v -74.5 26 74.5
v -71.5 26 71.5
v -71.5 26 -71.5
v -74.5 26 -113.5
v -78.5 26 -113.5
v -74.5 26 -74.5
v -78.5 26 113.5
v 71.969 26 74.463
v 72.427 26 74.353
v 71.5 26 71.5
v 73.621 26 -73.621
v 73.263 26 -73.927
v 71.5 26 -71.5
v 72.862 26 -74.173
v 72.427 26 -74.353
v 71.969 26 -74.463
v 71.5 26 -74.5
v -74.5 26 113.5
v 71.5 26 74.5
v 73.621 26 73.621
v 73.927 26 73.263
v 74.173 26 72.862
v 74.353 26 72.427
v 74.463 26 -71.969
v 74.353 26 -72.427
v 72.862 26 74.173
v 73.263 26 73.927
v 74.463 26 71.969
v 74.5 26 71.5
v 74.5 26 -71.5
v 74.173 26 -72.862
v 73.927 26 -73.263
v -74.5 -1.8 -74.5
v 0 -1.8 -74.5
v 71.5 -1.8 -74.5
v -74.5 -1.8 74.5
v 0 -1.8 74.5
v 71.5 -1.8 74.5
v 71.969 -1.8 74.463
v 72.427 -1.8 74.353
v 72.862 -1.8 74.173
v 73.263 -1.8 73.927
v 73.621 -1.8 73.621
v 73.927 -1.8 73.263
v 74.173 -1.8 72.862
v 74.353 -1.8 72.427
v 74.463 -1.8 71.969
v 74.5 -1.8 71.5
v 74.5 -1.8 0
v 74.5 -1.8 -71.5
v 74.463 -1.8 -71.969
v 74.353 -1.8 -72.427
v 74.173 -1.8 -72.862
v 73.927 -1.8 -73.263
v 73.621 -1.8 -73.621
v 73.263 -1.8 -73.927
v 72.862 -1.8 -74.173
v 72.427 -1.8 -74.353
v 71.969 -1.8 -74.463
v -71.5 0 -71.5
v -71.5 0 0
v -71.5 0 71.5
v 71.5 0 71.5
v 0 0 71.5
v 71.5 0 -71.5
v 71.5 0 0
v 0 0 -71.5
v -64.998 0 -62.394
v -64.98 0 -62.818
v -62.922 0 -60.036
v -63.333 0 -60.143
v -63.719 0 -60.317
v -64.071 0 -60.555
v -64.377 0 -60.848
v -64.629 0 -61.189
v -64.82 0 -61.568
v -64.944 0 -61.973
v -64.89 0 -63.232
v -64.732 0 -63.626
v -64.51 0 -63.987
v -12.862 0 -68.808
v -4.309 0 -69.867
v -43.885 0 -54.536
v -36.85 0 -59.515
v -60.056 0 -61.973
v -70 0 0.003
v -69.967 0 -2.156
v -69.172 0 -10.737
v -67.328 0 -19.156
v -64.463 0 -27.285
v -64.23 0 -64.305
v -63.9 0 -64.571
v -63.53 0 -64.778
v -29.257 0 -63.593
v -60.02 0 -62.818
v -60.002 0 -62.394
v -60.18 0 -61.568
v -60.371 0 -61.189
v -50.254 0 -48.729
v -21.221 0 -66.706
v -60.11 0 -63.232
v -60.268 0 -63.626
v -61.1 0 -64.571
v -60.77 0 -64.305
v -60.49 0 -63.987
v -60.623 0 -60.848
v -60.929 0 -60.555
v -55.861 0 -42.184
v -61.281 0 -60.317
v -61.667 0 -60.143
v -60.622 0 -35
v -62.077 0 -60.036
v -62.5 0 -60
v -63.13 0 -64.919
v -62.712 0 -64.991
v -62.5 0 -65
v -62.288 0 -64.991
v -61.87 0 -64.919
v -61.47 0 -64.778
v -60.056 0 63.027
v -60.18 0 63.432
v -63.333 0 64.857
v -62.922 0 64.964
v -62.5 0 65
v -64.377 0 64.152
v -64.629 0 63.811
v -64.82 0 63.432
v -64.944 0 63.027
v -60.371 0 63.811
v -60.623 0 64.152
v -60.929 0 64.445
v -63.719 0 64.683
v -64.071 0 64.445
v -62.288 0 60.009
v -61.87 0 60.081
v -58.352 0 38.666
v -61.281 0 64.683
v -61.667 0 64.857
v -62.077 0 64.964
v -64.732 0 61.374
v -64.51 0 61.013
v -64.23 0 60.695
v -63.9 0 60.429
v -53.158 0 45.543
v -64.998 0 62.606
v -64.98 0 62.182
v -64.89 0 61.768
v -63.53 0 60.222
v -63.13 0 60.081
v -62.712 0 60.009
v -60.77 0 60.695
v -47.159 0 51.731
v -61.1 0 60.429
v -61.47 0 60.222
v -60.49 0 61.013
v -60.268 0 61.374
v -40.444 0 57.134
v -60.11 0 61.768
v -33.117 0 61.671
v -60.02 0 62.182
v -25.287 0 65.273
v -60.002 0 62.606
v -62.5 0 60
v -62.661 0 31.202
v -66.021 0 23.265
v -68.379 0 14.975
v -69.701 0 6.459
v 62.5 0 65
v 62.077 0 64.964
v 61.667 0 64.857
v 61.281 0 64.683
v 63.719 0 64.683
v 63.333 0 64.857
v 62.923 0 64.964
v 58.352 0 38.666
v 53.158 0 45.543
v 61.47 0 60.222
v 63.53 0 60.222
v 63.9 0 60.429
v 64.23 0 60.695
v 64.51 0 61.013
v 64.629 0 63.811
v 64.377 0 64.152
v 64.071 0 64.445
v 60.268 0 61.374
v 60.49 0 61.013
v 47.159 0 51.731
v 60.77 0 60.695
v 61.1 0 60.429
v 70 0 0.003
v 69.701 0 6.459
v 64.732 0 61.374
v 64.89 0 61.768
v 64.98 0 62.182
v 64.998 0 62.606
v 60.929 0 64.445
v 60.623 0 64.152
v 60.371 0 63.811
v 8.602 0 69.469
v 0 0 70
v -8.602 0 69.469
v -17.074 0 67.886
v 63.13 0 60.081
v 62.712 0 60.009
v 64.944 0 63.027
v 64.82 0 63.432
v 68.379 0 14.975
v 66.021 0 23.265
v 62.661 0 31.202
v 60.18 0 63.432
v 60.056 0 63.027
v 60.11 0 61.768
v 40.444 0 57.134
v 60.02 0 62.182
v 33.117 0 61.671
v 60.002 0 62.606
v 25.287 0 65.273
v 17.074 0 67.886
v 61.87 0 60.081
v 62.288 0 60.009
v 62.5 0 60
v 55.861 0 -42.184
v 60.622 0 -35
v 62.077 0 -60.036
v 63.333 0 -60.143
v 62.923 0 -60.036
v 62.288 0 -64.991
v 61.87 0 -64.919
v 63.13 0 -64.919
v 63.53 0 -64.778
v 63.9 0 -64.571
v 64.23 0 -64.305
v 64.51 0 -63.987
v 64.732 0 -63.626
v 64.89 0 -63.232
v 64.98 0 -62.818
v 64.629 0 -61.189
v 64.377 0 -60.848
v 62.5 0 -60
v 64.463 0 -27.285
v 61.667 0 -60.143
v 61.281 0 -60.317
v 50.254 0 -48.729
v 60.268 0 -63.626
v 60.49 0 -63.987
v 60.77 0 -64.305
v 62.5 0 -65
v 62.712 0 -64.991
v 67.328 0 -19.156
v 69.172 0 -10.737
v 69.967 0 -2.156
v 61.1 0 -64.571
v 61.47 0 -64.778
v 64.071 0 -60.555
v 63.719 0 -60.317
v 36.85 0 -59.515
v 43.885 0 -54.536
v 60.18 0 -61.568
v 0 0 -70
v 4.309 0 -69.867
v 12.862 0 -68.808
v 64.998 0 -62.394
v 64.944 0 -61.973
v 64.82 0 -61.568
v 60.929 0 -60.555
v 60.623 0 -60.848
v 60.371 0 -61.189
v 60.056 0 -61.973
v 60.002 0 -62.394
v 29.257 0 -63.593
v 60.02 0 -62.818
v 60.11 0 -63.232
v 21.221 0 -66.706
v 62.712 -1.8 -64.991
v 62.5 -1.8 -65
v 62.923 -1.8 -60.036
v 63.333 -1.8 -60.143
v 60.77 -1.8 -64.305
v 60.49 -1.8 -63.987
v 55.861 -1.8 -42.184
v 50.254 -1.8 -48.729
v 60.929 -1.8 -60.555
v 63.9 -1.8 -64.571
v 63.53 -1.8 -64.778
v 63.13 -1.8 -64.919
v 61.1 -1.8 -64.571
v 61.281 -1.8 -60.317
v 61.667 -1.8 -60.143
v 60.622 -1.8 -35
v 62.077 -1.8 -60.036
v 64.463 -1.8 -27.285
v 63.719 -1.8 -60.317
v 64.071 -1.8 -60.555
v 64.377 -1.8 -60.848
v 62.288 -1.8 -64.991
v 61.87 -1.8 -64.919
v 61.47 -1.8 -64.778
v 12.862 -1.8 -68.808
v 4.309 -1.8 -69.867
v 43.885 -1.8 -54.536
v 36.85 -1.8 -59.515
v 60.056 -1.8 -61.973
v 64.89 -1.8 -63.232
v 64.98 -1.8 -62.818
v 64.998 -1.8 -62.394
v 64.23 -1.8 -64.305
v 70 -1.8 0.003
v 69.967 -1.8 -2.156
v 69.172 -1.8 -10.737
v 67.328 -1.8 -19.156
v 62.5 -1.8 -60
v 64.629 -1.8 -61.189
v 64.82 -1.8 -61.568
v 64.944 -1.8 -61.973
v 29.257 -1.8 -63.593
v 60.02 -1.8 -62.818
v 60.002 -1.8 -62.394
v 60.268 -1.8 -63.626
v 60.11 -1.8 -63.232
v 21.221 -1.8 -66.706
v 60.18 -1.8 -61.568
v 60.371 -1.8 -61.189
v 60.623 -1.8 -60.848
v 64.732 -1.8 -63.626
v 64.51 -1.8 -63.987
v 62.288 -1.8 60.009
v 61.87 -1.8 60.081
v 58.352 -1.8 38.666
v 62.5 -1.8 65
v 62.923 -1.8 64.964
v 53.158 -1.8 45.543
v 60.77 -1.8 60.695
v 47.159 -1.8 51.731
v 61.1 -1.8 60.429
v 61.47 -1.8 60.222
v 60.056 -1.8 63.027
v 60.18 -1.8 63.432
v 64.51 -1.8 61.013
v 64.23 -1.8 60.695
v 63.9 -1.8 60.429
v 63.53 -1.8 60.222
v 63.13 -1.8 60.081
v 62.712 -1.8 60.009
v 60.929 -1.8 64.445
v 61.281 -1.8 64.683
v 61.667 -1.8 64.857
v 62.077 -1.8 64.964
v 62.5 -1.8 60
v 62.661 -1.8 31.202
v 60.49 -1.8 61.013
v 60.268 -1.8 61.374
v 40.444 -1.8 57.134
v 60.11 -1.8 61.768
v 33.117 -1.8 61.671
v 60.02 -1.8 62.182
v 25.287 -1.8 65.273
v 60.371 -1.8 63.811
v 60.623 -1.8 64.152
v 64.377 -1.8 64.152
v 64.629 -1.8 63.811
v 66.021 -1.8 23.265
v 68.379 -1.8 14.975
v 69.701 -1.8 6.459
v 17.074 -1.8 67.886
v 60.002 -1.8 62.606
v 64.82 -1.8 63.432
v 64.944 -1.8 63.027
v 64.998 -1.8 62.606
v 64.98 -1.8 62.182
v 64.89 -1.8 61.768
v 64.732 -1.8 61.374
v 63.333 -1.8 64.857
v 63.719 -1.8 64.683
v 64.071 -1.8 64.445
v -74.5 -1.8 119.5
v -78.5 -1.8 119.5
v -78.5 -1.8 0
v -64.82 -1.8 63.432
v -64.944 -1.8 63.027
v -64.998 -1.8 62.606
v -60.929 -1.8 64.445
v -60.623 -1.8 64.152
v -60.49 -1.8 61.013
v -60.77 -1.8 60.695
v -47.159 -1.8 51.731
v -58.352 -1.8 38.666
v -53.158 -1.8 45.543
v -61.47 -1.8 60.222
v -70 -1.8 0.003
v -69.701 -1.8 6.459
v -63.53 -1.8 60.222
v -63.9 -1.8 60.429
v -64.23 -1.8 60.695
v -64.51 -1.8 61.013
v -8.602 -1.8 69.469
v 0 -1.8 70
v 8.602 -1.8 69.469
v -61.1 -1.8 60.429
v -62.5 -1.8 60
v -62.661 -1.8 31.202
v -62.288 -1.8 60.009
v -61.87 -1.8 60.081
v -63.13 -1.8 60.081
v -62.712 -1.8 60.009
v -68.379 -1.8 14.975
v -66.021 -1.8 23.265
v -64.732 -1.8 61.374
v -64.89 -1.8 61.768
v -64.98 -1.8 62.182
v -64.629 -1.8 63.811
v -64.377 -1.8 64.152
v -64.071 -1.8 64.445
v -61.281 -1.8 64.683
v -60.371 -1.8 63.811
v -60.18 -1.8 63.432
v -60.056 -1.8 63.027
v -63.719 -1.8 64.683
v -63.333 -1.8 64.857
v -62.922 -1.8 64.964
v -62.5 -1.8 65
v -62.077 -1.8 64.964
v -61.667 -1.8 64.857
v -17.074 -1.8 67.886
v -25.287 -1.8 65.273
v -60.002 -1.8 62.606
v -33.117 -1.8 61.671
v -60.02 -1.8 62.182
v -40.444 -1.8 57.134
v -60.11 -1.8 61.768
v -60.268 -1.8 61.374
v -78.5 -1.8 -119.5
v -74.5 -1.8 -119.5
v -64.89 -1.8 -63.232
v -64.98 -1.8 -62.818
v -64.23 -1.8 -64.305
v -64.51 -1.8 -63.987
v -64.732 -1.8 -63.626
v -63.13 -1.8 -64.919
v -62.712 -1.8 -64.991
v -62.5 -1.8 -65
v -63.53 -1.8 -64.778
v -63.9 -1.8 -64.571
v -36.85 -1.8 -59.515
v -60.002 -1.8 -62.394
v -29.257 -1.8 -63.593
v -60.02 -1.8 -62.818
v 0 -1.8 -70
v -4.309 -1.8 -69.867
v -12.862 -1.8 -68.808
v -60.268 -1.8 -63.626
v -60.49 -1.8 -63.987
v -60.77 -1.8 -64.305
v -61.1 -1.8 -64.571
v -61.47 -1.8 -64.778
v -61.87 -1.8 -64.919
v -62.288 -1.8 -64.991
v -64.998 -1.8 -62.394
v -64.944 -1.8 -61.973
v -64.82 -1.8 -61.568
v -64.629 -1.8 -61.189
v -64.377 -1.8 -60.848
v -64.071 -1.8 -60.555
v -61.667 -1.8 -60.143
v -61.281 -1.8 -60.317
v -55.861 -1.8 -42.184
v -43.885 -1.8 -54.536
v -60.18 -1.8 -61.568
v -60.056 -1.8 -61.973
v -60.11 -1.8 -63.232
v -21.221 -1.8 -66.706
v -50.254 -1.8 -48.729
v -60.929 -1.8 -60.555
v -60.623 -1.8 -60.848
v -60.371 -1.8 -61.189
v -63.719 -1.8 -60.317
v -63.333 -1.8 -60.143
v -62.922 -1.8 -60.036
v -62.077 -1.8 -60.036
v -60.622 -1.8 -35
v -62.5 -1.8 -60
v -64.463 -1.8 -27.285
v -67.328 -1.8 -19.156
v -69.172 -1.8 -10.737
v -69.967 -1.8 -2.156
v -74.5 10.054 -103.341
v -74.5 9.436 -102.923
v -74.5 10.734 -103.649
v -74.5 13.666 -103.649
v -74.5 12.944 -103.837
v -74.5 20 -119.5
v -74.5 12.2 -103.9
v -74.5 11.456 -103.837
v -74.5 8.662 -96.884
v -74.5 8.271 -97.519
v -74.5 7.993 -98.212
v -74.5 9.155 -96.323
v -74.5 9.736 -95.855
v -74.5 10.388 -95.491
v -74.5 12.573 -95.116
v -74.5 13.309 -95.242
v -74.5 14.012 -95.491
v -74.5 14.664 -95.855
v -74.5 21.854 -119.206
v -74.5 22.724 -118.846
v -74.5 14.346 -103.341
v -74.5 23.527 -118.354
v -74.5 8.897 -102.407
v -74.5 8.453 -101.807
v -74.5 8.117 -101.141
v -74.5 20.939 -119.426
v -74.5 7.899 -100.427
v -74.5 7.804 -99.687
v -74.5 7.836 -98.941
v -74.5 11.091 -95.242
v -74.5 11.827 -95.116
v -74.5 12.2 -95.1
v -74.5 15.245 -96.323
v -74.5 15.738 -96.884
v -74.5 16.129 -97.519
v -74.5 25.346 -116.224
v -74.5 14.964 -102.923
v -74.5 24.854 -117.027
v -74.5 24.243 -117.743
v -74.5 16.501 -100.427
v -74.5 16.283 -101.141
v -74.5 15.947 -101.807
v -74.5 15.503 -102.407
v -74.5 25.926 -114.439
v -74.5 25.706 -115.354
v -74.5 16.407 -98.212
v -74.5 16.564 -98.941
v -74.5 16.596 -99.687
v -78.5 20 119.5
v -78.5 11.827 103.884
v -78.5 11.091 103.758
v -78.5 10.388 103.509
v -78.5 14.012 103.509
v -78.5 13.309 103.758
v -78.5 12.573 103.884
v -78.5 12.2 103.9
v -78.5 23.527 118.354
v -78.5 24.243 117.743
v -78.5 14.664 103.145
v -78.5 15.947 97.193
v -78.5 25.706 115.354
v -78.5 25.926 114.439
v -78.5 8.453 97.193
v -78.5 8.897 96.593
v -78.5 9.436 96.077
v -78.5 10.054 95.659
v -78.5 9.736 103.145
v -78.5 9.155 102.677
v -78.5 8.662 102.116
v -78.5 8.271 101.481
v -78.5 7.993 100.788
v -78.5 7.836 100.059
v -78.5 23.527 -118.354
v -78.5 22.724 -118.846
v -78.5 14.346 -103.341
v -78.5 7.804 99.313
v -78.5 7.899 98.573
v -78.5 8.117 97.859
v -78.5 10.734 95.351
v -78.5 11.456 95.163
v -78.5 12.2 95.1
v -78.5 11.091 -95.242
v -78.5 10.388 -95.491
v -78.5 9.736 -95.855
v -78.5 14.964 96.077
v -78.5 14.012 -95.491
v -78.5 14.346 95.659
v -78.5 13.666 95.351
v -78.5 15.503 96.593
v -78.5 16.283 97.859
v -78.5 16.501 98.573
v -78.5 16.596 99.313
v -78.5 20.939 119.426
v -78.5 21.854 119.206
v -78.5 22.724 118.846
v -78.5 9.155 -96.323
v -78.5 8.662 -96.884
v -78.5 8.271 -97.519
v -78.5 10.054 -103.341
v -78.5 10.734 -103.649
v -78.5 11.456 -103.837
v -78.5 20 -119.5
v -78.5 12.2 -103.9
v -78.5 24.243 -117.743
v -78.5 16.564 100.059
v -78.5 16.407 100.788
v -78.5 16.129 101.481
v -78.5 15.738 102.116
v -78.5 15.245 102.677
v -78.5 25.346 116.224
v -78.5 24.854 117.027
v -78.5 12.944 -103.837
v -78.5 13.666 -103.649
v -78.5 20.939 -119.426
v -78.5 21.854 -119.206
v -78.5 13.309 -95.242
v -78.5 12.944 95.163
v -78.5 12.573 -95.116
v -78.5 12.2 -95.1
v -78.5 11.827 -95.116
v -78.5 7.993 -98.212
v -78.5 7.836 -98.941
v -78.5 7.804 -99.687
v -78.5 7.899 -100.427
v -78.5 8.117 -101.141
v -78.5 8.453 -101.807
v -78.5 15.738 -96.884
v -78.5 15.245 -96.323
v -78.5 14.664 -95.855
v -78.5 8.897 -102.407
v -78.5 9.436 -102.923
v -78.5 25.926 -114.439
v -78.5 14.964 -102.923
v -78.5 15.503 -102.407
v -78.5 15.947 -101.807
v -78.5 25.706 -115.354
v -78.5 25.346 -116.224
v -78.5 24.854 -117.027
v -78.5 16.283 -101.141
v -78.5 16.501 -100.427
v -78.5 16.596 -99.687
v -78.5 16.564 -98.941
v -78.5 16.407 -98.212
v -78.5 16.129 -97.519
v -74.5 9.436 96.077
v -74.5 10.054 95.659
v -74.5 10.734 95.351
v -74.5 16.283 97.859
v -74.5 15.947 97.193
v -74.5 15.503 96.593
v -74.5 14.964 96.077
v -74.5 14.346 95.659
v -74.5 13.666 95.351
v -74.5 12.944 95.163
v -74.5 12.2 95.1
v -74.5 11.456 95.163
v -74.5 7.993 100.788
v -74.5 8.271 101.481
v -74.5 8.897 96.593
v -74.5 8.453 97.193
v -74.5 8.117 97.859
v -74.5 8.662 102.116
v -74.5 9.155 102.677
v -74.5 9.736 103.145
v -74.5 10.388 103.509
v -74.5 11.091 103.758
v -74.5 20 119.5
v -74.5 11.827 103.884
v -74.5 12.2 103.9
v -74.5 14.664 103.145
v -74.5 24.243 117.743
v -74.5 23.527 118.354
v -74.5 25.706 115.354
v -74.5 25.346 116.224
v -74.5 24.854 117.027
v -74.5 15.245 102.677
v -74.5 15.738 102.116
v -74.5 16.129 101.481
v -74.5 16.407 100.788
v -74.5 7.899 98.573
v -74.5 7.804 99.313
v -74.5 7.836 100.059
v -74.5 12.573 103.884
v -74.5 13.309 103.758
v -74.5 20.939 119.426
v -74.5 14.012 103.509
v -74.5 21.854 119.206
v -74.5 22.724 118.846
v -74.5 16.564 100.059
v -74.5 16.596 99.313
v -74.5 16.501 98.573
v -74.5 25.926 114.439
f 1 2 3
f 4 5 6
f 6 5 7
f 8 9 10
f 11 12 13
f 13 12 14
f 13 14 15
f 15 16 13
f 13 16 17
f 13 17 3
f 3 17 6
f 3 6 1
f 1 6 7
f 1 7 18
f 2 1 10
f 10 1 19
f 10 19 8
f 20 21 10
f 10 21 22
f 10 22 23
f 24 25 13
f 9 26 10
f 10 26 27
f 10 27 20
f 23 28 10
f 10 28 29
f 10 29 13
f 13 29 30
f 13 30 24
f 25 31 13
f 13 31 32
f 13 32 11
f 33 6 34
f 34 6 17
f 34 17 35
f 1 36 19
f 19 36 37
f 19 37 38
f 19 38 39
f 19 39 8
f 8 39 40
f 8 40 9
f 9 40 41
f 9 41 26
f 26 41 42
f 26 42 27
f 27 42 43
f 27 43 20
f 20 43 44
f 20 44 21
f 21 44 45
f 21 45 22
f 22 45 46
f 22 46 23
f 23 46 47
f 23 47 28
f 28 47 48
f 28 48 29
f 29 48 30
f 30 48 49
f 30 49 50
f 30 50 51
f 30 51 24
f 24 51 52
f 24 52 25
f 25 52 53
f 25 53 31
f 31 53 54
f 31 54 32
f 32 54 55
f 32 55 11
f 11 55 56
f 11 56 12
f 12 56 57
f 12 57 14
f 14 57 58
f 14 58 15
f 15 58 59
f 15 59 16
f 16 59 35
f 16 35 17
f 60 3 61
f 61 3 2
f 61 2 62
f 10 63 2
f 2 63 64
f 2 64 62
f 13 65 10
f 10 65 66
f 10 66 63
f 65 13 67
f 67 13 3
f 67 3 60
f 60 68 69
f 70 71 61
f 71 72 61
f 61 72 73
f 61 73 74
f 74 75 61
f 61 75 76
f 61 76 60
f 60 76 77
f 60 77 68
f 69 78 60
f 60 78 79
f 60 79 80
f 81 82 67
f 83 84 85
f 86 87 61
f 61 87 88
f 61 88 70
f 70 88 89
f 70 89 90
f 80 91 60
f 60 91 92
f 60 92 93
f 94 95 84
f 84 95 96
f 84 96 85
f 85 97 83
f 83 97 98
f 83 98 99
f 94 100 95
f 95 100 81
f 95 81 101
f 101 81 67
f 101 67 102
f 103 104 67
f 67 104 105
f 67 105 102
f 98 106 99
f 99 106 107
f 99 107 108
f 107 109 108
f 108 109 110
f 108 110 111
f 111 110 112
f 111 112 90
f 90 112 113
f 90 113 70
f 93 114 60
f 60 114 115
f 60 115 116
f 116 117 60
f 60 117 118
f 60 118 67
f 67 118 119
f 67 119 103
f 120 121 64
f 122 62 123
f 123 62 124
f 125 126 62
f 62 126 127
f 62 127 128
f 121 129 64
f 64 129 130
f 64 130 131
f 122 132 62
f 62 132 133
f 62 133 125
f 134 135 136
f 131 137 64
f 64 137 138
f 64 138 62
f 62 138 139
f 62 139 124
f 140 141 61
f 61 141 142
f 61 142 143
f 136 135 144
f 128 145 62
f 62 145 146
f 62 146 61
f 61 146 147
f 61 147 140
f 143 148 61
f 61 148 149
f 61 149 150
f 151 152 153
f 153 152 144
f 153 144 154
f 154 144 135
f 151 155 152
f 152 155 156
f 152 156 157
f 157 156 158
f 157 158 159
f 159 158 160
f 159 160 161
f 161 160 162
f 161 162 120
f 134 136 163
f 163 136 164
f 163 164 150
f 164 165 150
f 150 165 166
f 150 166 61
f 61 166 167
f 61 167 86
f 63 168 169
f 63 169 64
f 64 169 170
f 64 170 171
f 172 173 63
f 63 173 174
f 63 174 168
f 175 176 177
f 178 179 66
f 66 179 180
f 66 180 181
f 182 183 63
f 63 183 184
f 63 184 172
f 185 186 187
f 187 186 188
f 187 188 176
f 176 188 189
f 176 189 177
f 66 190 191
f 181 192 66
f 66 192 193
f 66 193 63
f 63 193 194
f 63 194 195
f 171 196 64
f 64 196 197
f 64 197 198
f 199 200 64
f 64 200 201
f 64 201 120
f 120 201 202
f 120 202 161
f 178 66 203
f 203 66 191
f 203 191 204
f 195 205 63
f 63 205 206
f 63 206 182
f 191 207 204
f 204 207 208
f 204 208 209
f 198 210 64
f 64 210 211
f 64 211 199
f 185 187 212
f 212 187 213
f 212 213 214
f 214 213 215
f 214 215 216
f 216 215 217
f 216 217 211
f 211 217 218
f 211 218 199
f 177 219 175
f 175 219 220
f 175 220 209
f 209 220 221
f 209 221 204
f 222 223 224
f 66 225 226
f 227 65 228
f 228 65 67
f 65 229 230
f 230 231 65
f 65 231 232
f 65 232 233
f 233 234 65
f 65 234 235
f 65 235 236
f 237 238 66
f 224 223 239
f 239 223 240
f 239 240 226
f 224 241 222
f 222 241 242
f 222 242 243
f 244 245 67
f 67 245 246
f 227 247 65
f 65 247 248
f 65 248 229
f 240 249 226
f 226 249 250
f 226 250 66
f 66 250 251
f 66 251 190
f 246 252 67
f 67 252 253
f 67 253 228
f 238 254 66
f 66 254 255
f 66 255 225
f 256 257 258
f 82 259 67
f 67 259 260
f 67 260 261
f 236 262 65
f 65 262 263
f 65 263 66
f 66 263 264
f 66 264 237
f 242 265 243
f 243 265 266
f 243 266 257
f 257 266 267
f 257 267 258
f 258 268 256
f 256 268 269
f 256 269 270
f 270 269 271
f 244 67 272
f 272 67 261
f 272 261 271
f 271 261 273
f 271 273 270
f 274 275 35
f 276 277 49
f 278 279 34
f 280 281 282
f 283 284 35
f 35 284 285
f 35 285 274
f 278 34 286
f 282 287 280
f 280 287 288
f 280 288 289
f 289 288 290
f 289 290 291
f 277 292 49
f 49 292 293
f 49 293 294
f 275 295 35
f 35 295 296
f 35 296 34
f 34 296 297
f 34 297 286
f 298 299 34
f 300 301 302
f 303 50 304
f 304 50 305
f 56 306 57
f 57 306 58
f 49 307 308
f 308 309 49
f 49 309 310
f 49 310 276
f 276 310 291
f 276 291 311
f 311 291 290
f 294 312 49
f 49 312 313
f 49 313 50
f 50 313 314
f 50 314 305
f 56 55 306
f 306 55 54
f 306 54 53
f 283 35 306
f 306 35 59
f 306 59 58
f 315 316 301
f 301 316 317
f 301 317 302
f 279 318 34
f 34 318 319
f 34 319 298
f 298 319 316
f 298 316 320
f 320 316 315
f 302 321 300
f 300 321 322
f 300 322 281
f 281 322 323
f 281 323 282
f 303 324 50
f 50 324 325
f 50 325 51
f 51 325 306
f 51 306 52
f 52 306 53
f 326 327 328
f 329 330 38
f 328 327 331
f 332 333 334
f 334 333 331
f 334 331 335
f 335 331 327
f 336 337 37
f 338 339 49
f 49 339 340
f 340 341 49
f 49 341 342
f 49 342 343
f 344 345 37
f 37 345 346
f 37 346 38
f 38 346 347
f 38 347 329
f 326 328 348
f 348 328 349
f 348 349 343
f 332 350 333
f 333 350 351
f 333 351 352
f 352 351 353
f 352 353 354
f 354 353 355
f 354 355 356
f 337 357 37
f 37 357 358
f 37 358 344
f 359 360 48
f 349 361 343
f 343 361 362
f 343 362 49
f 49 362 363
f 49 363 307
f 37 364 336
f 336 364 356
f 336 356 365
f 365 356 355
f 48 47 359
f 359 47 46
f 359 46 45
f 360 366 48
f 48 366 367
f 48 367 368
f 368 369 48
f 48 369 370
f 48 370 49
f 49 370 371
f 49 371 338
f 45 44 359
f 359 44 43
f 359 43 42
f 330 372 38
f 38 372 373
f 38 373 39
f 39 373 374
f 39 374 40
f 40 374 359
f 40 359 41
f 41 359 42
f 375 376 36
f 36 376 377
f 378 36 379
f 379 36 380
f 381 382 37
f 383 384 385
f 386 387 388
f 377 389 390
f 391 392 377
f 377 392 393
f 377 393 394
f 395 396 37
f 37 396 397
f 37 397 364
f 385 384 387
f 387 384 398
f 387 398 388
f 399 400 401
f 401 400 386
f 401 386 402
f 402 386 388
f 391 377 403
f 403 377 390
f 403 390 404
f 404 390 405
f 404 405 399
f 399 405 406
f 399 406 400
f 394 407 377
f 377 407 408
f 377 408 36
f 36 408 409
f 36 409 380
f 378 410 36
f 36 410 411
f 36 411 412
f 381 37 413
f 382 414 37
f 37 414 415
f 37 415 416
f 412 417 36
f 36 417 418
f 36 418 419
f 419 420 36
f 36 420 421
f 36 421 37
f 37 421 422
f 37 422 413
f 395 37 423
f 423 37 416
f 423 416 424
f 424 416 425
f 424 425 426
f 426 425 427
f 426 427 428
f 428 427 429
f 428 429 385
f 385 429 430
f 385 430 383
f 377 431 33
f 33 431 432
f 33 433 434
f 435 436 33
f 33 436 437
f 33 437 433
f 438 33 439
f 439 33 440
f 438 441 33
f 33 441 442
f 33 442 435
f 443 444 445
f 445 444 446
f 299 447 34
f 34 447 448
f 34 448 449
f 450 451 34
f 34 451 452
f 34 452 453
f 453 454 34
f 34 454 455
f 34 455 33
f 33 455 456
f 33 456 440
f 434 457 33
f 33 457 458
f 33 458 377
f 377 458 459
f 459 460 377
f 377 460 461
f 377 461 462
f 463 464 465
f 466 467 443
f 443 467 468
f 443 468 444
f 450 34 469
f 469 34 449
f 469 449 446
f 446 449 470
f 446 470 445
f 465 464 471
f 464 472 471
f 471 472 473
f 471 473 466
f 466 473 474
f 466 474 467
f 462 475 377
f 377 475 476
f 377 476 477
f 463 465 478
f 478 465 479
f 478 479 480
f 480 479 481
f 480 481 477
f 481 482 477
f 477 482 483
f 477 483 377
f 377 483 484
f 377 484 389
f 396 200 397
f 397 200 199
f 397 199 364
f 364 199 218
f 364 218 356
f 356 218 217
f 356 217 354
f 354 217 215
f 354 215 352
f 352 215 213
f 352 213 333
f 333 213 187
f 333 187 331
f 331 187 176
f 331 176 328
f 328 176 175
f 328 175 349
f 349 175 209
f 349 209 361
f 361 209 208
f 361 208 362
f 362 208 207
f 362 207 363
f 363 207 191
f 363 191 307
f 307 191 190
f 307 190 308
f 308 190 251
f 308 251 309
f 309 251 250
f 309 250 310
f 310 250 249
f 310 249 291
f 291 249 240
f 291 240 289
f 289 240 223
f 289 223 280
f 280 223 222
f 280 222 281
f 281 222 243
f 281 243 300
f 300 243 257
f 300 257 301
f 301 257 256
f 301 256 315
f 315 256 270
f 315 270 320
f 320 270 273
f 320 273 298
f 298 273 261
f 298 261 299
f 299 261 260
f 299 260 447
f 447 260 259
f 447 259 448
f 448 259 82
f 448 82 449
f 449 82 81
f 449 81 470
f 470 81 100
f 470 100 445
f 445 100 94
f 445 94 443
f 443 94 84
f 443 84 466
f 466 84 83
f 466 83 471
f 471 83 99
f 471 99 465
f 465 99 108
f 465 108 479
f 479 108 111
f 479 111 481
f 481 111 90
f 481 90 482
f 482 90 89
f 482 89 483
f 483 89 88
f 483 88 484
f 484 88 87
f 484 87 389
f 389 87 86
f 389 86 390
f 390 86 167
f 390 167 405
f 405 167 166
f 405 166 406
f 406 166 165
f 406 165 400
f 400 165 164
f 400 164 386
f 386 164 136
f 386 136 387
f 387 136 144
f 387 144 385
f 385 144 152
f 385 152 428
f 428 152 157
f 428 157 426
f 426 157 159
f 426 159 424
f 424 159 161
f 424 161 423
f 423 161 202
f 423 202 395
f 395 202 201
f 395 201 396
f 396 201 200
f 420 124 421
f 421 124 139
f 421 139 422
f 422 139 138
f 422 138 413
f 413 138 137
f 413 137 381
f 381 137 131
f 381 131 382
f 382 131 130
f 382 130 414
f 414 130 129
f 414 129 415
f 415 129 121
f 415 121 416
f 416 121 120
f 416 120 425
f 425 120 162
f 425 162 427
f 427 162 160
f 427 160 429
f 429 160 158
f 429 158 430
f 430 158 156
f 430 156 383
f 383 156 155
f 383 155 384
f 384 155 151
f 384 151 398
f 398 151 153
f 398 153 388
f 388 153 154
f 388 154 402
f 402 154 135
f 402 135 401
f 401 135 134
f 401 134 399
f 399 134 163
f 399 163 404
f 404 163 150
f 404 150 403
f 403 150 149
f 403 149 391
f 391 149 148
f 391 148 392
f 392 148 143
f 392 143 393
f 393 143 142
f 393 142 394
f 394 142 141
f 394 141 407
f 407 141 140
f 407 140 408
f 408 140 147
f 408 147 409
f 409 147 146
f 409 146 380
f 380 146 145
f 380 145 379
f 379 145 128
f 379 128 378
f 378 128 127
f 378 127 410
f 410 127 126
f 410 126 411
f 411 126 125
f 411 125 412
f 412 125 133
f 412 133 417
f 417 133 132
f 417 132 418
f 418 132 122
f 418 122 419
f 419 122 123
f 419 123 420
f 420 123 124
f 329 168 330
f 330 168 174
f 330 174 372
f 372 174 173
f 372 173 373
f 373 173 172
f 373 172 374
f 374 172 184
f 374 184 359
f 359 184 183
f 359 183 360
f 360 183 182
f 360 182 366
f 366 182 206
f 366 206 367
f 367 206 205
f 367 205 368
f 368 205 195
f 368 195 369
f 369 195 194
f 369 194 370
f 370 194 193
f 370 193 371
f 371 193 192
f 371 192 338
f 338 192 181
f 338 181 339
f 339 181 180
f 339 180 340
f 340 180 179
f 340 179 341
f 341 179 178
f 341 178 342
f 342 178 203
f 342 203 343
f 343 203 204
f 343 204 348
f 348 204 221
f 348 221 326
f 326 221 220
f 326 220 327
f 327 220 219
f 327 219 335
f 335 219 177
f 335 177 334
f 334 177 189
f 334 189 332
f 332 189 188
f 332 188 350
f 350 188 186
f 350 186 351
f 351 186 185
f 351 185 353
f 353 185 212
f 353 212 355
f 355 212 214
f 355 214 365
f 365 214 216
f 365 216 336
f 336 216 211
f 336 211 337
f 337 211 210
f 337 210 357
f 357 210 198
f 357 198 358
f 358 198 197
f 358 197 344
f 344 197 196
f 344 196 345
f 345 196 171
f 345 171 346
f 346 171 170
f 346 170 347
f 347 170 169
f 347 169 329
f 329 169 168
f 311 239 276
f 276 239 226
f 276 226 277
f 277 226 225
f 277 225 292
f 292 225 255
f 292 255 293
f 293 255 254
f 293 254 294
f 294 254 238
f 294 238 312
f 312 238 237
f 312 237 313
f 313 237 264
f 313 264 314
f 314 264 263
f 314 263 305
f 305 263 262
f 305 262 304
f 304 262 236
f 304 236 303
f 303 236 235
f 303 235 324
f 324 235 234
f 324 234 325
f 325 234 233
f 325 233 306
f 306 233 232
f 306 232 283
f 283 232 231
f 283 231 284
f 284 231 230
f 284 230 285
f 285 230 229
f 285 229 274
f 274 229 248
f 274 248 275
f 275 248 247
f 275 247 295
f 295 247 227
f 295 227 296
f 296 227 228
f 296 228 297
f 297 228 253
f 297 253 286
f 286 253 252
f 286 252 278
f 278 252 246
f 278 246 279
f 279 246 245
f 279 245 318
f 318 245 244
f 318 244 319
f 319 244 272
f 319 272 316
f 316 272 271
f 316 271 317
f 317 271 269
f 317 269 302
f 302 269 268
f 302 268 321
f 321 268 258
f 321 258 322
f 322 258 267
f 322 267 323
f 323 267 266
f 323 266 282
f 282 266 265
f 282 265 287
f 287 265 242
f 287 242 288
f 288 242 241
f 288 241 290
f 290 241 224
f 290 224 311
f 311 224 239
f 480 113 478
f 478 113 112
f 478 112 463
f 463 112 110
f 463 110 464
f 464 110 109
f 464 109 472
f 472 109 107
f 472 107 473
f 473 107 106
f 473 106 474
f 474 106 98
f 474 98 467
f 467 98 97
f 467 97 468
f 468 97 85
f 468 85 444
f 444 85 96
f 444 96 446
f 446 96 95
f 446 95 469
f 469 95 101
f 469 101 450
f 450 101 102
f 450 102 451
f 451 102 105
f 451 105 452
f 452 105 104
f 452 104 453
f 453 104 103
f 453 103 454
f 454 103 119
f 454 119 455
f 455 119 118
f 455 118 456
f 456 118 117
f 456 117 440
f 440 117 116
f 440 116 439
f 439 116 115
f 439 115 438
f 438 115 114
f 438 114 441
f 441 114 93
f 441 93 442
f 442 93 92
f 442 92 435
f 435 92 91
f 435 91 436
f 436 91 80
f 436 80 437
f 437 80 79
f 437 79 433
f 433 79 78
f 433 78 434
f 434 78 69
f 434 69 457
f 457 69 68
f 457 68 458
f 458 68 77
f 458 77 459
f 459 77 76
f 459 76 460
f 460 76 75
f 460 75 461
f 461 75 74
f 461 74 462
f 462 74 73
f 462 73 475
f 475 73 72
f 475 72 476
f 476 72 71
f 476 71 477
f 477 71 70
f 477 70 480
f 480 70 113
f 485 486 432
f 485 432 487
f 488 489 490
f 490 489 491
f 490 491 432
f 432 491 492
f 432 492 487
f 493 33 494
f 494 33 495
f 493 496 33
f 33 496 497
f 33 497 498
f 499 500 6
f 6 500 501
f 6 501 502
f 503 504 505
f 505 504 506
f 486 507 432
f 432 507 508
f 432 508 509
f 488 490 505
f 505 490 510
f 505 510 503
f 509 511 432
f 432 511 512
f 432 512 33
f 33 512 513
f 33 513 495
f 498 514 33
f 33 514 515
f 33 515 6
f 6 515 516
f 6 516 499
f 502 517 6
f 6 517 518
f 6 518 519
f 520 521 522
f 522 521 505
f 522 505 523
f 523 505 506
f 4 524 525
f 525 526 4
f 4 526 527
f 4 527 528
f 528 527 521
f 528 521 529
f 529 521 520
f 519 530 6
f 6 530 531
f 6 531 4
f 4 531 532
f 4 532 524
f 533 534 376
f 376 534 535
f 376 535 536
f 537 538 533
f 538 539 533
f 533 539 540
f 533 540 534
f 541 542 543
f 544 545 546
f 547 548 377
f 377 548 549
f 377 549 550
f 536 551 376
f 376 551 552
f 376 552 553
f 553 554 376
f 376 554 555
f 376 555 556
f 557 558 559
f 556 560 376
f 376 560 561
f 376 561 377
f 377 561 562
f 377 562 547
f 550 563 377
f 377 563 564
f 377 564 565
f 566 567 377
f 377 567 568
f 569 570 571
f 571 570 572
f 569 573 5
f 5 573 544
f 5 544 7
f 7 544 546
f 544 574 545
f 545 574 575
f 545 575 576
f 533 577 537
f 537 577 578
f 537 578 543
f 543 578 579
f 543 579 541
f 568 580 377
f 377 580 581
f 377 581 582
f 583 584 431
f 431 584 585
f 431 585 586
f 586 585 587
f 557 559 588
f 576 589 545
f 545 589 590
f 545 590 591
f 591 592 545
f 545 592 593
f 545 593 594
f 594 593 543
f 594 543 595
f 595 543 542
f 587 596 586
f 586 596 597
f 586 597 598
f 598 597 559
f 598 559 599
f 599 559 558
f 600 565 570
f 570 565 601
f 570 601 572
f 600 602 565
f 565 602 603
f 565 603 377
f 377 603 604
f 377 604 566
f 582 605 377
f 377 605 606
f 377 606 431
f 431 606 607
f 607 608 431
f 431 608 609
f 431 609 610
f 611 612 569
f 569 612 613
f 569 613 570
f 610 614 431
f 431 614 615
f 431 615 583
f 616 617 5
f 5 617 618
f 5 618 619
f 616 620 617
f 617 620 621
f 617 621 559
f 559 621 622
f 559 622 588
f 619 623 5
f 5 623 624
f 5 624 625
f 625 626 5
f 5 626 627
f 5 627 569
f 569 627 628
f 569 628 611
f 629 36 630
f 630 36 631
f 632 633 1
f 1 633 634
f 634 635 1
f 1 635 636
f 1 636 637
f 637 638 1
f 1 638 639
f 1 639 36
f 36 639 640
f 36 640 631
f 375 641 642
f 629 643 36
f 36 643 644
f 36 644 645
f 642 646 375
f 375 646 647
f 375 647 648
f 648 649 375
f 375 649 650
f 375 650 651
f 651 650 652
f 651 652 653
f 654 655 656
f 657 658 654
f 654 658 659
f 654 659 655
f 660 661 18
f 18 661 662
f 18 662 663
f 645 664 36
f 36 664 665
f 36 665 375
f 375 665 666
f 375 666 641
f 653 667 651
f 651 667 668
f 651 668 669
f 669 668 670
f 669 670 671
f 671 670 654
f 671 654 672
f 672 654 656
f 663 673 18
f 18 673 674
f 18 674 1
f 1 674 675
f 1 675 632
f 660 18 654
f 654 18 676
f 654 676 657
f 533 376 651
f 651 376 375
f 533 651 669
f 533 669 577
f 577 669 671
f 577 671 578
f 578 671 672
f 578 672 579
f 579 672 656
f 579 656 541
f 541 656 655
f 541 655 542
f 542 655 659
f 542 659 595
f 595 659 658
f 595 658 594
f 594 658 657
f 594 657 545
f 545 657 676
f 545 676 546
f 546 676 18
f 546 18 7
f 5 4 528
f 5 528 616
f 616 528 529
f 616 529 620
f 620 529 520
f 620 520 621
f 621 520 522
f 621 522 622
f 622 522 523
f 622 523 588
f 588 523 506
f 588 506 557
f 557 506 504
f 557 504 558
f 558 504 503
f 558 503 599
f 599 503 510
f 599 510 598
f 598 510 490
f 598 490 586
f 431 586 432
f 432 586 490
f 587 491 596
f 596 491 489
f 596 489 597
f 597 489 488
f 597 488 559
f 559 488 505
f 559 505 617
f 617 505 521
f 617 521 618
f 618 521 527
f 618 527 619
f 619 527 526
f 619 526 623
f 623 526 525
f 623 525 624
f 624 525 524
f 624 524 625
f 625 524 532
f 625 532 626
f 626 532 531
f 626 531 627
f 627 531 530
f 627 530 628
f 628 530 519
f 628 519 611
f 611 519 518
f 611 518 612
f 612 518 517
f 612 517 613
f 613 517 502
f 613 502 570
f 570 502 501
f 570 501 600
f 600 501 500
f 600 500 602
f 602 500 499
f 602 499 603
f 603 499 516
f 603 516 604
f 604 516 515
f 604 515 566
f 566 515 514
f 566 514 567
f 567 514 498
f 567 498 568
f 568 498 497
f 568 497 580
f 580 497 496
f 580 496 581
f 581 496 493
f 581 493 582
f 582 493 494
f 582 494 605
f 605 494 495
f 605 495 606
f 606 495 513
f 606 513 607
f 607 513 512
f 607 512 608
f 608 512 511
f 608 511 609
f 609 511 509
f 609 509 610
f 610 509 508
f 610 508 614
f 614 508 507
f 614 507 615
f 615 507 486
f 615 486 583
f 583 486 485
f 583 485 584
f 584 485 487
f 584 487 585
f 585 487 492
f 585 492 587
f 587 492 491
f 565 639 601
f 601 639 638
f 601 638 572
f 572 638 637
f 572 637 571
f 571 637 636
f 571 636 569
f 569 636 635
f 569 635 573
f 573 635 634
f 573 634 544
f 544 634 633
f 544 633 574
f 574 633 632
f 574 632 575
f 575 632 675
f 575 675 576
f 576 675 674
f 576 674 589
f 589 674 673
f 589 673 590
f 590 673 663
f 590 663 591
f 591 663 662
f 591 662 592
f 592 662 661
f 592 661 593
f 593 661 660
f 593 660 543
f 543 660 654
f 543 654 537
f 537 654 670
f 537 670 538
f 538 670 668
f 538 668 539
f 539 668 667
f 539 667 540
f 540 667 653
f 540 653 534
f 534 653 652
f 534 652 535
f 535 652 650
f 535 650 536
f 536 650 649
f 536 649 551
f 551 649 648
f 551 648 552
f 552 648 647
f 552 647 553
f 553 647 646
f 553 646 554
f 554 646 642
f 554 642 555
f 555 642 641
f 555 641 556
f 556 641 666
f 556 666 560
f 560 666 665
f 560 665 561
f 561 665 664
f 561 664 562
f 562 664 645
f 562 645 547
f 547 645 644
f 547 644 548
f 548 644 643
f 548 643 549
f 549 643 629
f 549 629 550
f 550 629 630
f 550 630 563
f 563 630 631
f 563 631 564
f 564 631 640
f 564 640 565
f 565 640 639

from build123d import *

# Parameters (mm, degrees)
SKETCH1_W           = 143
SKETCH1_H           = 143
BOSS_EXTRUDE1_DEPTH = 26
SKETCH2_R           = 70
SKETCH2_R_2         = 2.5
BOSS_EXTRUDE2_DEPTH = 1.8
SKETCH3_R           = 4.4
BOSS_EXTRUDE4_DEPTH = 4


with BuildPart() as part:
    # Sketch1 → Boss-Extrude1 (new body)
    with BuildSketch(Plane(origin=(0, 0, 0), x_dir=(1, 0, 0), z_dir=(0, 1, 0))):
        with BuildLine():
            Line((74.5, 71.5), (74.5, -71.5))
            ThreePointArc((74.5, -71.5), (73.621320344, -73.621320344), (71.5, -74.5))
            Line((71.5, -74.5), (-74.5, -74.5))
            Line((-74.5, -74.5), (-74.5, 74.5))
            Line((-74.5, 74.5), (71.5, 74.5))
            ThreePointArc((71.5, 74.5), (73.621320344, 73.621320344), (74.5, 71.5))
        make_face()
        Rectangle(SKETCH1_W, SKETCH1_H, mode=Mode.SUBTRACT)
    extrude(amount=BOSS_EXTRUDE1_DEPTH)

    # Sketch2 → Boss-Extrude2 (add)
    with BuildSketch(Plane.XZ):
        with BuildLine():
            Line((74.5, -71.5), (74.5, 71.5))
            ThreePointArc((74.5, 71.5), (73.621320344, 73.621320344), (71.5, 74.5))
            Line((71.5, 74.5), (-74.5, 74.5))
            Line((-74.5, 74.5), (-74.5, -74.5))
            Line((-74.5, -74.5), (71.5, -74.5))
            ThreePointArc((71.5, -74.5), (73.621320344, -73.621320344), (74.5, -71.5))
        make_face()
        with Locations(Location((0, 0, 0), (0, 0, 270))):
            Circle(SKETCH2_R, mode=Mode.SUBTRACT)
        with Locations(Location((-62.5, 62.5, 0), (0, 0, 270))):
            Circle(SKETCH2_R_2, mode=Mode.SUBTRACT)
        with Locations(Location((62.5, 62.5, 0), (0, 0, 270))):
            Circle(SKETCH2_R_2, mode=Mode.SUBTRACT)
        with Locations(Location((62.5, -62.5, 0), (0, 0, 270))):
            Circle(SKETCH2_R_2, mode=Mode.SUBTRACT)
        with Locations(Location((-62.5, -62.5, 0), (0, 0, 270))):
            Circle(SKETCH2_R_2, mode=Mode.SUBTRACT)
    extrude(amount=BOSS_EXTRUDE2_DEPTH)

    # Sketch3 → Boss-Extrude4 (add)
    with BuildSketch(Plane.ZY.offset(74.5)):
        with BuildLine():
            Line((-113.5, 26), (113.5, 26))
            ThreePointArc((113.5, 26), (117.742640687, 24.242640687), (119.5, 20))
            Line((119.5, 20), (119.5, -1.8))
            Line((119.5, -1.8), (-119.5, -1.8))
            Line((-119.5, -1.8), (-119.5, 20))
            ThreePointArc((-119.5, 20), (-117.742640687, 24.242640687), (-113.5, 26))
        make_face()
        with Locations((-99.5, 12.2)):
            Circle(SKETCH3_R, mode=Mode.SUBTRACT)
        with Locations((99.5, 12.2)):
            Circle(SKETCH3_R, mode=Mode.SUBTRACT)
    extrude(amount=BOSS_EXTRUDE4_DEPTH)


solid = part.part
